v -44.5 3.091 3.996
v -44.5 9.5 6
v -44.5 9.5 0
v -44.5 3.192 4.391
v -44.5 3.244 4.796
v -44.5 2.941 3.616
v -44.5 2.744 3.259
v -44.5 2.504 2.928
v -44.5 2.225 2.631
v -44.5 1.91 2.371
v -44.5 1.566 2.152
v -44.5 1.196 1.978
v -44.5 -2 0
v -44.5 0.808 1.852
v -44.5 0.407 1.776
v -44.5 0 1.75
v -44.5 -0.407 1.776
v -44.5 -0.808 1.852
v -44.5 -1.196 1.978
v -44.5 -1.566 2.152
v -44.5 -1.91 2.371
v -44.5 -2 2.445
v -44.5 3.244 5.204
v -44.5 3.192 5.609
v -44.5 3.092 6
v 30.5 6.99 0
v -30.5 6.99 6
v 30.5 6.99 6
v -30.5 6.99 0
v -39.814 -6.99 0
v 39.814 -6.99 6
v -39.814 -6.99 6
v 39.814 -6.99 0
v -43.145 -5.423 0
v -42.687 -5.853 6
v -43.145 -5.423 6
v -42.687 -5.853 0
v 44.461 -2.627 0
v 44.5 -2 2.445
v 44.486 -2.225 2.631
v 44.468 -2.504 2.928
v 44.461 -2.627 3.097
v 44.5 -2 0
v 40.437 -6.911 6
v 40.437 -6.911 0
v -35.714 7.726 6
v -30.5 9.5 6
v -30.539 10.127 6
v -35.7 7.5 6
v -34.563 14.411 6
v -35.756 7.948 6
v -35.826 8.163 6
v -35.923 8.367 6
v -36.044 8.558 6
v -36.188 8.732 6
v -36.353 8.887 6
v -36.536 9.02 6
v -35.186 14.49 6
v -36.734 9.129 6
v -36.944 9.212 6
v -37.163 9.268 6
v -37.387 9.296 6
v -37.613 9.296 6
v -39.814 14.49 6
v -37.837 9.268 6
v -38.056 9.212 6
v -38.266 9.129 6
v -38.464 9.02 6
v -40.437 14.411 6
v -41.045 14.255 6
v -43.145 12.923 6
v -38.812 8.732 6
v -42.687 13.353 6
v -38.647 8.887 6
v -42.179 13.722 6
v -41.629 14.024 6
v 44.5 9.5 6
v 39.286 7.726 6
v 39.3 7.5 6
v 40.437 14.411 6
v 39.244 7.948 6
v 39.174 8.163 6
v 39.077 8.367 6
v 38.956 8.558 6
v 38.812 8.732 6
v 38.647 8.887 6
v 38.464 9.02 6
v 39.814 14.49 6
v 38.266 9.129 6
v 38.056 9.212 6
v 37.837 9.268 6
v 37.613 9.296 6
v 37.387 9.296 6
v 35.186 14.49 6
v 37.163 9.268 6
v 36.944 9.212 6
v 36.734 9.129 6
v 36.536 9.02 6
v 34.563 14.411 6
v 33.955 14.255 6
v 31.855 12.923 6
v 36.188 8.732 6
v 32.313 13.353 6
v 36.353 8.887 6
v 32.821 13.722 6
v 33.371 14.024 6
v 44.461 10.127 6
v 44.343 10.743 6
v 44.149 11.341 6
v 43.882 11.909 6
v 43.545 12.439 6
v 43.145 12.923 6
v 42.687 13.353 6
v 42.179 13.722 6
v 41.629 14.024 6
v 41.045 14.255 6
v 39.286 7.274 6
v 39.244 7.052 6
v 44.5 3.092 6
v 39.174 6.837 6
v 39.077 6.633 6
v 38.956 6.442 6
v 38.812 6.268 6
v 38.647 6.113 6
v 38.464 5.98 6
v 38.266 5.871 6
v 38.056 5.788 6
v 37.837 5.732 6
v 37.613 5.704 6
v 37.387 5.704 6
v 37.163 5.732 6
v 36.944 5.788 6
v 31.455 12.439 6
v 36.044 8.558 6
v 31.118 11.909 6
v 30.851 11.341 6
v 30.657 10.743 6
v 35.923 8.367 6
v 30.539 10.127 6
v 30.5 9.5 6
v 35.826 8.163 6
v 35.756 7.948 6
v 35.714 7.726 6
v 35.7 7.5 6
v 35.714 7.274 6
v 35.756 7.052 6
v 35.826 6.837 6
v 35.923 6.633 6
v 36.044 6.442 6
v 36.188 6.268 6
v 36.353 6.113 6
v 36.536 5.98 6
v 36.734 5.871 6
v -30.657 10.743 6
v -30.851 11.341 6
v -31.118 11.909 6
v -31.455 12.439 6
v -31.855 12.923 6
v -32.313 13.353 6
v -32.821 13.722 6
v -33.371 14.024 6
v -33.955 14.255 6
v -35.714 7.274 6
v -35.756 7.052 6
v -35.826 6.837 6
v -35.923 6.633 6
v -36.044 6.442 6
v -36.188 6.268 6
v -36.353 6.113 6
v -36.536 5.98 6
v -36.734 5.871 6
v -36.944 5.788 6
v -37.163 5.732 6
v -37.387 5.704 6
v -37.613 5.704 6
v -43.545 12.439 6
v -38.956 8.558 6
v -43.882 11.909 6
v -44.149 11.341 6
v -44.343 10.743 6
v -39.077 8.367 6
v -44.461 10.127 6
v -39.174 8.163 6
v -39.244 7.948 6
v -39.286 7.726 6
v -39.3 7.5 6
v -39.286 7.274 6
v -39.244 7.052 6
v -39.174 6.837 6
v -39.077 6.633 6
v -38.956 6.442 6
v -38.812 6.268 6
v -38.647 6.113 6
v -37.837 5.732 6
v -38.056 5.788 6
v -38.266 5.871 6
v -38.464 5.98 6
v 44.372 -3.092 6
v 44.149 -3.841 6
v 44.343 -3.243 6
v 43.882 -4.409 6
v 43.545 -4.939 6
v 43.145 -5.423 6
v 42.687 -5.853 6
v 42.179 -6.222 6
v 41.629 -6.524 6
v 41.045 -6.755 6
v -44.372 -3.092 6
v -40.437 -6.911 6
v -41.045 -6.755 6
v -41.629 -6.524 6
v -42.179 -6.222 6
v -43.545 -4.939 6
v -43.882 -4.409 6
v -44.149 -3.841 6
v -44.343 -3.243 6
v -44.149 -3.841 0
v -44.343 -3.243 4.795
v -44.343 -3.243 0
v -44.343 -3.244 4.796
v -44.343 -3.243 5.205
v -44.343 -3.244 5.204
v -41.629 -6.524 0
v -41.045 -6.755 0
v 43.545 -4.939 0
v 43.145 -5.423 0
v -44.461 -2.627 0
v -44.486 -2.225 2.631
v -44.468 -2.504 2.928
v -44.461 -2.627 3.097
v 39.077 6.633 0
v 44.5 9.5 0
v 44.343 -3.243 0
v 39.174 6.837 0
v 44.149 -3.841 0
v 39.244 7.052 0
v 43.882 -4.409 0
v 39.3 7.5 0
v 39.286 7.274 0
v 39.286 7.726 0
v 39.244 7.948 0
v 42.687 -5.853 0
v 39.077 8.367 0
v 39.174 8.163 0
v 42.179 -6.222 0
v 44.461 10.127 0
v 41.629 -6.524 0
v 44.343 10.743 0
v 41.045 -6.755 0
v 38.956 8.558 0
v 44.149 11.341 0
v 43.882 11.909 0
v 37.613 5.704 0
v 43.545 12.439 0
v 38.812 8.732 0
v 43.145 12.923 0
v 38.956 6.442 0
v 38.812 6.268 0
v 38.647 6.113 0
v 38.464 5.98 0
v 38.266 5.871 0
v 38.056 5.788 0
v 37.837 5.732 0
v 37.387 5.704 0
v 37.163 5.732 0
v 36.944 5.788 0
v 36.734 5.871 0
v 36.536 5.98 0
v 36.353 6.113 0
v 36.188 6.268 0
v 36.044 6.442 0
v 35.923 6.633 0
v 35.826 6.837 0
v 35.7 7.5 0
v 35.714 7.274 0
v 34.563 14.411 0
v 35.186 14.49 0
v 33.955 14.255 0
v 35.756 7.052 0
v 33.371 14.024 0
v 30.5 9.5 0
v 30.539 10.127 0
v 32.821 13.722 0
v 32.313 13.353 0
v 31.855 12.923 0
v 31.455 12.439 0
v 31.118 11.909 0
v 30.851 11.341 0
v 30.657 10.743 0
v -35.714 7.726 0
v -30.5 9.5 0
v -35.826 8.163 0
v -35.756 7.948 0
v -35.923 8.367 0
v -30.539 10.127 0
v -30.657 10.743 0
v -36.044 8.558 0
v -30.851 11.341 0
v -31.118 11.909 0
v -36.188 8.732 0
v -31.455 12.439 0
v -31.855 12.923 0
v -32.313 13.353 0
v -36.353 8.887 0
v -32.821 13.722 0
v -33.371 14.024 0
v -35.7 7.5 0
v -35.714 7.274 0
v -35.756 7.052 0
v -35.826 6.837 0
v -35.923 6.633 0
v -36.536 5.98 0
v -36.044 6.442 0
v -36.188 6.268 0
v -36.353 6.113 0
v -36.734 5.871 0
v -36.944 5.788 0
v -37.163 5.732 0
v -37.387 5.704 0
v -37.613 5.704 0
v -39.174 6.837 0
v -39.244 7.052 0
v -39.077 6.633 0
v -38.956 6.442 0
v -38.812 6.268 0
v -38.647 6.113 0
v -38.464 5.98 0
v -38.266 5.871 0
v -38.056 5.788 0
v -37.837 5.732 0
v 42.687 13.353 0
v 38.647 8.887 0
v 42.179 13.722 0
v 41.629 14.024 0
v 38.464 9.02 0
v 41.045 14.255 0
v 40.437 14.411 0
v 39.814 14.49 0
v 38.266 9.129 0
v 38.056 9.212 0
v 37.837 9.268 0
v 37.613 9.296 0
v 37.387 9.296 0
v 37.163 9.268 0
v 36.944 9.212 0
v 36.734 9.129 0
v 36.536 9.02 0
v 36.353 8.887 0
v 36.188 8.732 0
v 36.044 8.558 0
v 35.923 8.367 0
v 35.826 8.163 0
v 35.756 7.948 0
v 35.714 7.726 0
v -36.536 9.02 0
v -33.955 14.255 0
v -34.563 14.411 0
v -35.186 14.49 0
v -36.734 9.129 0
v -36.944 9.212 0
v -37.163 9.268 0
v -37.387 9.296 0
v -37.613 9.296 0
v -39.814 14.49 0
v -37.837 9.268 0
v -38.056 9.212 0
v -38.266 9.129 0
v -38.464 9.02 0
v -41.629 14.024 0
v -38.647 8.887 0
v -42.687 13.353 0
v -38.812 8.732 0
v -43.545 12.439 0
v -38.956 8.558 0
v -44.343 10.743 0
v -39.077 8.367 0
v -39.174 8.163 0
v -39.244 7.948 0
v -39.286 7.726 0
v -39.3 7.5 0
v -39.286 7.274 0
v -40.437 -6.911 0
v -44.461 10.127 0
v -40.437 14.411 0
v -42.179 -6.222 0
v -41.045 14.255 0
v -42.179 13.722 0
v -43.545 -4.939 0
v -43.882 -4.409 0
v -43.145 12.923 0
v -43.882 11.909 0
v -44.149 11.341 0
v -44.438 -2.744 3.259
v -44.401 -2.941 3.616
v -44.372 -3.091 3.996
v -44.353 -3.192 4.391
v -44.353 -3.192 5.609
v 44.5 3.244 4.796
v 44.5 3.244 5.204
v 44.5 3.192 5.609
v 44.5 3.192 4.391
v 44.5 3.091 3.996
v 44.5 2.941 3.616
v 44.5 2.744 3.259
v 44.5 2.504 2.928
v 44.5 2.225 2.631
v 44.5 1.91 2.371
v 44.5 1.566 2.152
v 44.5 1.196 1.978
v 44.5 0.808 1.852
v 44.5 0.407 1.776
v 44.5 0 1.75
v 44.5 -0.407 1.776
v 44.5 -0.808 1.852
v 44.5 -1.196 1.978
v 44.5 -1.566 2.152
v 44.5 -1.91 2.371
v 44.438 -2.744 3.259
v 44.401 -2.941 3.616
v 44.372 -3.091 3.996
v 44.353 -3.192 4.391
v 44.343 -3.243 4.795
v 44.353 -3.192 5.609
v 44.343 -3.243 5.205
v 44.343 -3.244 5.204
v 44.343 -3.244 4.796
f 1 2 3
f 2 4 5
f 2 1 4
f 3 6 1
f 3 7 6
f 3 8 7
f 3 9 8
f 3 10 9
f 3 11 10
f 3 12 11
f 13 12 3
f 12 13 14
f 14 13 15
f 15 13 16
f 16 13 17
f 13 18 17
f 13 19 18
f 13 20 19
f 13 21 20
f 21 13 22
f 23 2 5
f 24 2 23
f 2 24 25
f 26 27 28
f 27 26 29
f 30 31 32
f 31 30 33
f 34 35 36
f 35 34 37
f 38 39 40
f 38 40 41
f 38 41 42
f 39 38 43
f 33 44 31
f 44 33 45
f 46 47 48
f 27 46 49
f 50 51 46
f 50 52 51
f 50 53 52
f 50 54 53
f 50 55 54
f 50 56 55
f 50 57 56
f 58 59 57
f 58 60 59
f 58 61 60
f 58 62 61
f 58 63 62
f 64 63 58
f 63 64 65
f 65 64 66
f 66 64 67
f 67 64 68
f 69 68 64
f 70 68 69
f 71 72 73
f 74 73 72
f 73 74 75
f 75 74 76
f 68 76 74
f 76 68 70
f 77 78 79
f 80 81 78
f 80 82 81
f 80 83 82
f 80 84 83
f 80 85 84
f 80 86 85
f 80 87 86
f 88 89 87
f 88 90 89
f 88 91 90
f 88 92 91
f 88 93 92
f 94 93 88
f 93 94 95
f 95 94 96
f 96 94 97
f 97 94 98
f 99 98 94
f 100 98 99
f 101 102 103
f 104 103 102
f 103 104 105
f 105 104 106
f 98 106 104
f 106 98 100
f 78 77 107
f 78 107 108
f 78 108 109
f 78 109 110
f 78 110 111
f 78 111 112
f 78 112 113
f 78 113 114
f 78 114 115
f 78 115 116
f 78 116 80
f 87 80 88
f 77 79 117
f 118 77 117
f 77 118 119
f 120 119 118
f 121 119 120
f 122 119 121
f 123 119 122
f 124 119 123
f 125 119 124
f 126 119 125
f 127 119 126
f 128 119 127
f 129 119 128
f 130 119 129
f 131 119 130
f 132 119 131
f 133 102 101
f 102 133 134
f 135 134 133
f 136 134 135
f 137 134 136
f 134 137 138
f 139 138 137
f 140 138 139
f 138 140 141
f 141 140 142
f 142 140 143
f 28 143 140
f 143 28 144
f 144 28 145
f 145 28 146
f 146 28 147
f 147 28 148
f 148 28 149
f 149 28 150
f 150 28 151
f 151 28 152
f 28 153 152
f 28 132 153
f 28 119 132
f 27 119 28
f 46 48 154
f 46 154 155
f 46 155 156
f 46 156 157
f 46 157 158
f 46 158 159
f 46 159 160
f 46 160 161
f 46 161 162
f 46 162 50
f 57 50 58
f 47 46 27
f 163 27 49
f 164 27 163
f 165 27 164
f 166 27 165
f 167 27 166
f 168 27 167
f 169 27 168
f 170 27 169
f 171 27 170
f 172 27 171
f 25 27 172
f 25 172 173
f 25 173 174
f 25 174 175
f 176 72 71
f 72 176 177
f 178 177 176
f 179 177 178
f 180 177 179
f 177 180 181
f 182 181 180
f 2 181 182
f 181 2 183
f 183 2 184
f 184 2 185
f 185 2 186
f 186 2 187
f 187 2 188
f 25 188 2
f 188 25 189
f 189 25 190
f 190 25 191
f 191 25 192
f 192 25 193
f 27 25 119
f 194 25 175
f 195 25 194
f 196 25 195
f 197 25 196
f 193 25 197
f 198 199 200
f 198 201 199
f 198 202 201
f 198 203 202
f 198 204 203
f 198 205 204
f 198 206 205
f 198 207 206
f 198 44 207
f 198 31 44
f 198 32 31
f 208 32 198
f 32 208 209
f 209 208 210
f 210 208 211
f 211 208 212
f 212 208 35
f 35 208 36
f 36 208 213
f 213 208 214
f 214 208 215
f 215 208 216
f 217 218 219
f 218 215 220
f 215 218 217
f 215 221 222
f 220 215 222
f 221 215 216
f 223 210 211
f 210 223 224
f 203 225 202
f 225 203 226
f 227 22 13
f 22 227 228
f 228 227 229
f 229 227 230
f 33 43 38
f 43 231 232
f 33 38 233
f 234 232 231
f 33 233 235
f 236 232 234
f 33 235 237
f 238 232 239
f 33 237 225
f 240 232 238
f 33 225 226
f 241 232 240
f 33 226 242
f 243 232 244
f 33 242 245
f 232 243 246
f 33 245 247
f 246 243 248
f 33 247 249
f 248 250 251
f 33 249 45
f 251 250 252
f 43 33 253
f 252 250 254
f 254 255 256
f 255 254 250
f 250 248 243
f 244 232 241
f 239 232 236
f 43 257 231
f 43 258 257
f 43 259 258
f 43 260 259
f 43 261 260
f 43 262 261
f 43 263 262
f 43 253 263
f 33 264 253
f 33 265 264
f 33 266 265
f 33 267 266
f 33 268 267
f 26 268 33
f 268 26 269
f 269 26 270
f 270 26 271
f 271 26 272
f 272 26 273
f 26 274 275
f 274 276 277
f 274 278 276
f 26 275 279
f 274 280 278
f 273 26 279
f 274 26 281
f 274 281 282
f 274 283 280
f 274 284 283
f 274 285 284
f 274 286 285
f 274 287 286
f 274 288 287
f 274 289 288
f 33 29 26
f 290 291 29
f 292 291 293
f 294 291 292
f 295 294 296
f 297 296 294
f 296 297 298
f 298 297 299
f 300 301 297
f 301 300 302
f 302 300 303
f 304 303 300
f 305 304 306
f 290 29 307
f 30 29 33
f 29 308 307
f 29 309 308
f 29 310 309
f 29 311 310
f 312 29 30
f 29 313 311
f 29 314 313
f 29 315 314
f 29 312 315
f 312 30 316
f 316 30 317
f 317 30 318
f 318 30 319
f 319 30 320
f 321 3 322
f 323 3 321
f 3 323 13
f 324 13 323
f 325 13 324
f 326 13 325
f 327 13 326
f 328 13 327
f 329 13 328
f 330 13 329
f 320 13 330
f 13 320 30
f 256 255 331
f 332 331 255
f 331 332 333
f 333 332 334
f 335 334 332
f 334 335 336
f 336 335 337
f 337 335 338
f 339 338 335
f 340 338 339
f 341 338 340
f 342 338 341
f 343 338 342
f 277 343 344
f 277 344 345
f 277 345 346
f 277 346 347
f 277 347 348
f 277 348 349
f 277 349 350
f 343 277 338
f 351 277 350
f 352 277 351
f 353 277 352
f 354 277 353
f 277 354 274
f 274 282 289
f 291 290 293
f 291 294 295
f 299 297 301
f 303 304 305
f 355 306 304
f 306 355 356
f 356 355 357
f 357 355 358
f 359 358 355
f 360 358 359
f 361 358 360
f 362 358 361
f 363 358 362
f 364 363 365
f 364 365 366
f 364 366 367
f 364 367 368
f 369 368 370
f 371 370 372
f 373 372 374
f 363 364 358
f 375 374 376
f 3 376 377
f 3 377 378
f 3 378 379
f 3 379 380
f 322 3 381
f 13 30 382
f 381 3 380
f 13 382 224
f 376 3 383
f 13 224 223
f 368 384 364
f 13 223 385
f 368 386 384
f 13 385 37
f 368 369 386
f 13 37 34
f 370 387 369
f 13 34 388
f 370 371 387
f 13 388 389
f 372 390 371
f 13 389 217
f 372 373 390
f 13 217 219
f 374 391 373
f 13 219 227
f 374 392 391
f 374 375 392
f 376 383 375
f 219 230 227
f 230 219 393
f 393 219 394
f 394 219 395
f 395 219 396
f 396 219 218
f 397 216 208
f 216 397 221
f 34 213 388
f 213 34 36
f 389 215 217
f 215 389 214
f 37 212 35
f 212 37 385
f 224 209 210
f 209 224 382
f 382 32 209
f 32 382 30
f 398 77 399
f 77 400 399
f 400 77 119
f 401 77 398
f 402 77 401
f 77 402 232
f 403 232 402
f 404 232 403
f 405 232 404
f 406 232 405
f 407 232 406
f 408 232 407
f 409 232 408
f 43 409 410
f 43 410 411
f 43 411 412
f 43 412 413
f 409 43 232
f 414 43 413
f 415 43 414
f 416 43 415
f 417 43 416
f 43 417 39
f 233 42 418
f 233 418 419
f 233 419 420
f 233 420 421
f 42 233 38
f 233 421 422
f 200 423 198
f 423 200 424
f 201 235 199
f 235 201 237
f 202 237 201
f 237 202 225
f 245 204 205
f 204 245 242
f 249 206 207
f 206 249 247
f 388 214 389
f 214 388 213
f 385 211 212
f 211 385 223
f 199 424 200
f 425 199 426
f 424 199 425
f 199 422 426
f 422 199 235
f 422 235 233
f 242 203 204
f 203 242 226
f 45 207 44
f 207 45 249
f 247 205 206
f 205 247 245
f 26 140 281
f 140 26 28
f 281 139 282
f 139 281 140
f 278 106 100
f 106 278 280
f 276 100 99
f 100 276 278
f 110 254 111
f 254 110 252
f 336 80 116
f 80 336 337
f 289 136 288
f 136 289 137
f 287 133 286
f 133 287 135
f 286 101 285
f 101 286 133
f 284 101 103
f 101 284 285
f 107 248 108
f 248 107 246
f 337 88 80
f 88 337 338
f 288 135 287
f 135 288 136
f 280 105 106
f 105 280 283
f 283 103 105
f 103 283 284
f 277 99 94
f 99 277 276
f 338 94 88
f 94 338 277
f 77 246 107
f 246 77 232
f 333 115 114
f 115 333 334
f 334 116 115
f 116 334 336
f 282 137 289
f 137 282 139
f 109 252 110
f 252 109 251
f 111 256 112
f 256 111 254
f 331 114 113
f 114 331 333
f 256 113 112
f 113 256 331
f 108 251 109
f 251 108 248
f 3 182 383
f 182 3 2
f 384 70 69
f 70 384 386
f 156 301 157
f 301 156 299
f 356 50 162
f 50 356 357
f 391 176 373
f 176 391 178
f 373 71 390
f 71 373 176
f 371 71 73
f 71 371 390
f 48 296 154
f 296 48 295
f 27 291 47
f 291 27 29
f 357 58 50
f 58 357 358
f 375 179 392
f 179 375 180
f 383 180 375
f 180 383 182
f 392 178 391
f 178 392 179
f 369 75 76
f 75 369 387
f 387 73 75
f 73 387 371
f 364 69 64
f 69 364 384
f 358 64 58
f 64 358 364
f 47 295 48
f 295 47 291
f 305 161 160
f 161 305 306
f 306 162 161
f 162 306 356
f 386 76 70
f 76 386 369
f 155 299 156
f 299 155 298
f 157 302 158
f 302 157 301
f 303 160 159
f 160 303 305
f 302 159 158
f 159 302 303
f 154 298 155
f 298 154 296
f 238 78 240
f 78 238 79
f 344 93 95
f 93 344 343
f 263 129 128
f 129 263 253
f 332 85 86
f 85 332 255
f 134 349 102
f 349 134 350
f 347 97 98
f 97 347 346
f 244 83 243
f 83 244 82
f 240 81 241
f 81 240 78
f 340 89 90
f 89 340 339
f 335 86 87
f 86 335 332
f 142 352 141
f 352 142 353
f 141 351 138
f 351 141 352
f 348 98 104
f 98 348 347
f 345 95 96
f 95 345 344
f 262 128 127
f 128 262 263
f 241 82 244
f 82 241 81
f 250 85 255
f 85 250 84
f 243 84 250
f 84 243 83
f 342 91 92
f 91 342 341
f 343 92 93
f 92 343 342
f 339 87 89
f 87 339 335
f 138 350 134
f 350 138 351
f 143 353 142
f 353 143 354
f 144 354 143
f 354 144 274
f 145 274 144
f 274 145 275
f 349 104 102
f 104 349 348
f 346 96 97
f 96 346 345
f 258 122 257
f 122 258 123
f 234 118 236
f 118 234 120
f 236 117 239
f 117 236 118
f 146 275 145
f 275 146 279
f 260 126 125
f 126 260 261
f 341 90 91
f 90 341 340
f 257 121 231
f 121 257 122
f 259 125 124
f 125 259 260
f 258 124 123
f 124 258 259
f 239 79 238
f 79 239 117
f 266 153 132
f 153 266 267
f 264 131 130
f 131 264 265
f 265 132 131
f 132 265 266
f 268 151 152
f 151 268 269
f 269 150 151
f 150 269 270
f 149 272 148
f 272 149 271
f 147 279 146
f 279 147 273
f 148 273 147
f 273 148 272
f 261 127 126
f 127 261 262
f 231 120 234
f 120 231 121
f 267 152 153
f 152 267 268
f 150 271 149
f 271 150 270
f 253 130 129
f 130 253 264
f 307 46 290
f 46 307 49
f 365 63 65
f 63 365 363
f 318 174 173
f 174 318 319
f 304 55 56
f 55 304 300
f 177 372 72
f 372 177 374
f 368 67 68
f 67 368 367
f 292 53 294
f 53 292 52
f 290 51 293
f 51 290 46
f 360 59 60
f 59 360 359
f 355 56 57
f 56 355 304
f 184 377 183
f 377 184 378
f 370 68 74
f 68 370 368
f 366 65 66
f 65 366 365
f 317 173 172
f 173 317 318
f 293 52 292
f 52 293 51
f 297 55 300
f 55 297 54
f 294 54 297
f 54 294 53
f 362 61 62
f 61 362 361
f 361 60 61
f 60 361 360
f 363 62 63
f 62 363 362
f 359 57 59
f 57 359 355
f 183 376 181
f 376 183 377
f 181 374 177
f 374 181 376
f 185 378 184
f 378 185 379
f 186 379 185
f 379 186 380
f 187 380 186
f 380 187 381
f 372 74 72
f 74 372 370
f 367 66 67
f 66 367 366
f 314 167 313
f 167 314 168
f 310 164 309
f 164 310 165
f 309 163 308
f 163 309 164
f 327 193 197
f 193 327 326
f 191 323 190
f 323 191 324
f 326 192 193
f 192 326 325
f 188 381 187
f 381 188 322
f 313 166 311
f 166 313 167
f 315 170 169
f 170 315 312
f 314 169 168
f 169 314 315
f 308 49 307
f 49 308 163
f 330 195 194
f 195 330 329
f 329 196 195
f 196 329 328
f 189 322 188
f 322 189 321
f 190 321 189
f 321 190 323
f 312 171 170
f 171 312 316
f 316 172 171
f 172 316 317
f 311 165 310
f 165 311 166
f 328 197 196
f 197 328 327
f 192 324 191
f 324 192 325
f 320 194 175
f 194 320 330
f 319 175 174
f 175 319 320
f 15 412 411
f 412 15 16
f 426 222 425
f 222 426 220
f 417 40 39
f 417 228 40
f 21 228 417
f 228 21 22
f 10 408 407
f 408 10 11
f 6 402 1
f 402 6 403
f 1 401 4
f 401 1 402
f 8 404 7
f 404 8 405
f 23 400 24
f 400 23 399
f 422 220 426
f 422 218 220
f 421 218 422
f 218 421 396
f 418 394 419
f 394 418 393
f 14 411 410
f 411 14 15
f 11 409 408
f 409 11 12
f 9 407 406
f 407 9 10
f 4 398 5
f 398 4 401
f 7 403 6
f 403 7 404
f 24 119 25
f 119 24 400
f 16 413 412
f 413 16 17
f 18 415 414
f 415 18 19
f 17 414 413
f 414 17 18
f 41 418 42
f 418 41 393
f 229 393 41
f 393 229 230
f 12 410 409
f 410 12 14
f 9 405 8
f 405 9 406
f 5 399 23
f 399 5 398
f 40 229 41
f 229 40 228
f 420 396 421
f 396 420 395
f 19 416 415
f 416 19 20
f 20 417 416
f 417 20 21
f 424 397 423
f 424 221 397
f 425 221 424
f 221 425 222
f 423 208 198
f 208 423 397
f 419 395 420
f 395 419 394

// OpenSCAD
$fn = 50;


difference() {
	union() {
		hull() {
			translate(v = [-39.5000000000, 2.0000000000, 0]) {
				cylinder(h = 6, r = 5);
			}
			translate(v = [39.5000000000, 2.0000000000, 0]) {
				cylinder(h = 6, r = 5);
			}
			translate(v = [-39.5000000000, -2.0000000000, 0]) {
				cylinder(h = 6, r = 5);
			}
			translate(v = [39.5000000000, -2.0000000000, 0]) {
				cylinder(h = 6, r = 5);
			}
		}
		translate(v = [37.5000000000, 3.7500000000, 0]) {
			hull() {
				translate(v = [-2.0000000000, 5.7500000000, 0]) {
					cylinder(h = 6, r = 5);
				}
				translate(v = [2.0000000000, 5.7500000000, 0]) {
					cylinder(h = 6, r = 5);
				}
				translate(v = [-2.0000000000, -5.7500000000, 0]) {
					cylinder(h = 6, r = 5);
				}
				translate(v = [2.0000000000, -5.7500000000, 0]) {
					cylinder(h = 6, r = 5);
				}
			}
		}
		translate(v = [-37.5000000000, 3.7500000000, 0]) {
			hull() {
				translate(v = [-2.0000000000, 5.7500000000, 0]) {
					cylinder(h = 6, r = 5);
				}
				translate(v = [2.0000000000, 5.7500000000, 0]) {
					cylinder(h = 6, r = 5);
				}
				translate(v = [-2.0000000000, -5.7500000000, 0]) {
					cylinder(h = 6, r = 5);
				}
				translate(v = [2.0000000000, -5.7500000000, 0]) {
					cylinder(h = 6, r = 5);
				}
			}
		}
	}
	union() {
		#translate(v = [37.5000000000, 7.5000000000, 0]) {
			cylinder(h = 6, r = 1.8000000000);
		}
		#translate(v = [-37.5000000000, 7.5000000000, 0]) {
			cylinder(h = 6, r = 1.8000000000);
		}
		translate(v = [-45.0000000000, 0, 5.0000000000]) {
			rotate(a = [0, 90, 0]) {
				cylinder(h = 90, r = 3.2500000000);
			}
		}
	}
}
